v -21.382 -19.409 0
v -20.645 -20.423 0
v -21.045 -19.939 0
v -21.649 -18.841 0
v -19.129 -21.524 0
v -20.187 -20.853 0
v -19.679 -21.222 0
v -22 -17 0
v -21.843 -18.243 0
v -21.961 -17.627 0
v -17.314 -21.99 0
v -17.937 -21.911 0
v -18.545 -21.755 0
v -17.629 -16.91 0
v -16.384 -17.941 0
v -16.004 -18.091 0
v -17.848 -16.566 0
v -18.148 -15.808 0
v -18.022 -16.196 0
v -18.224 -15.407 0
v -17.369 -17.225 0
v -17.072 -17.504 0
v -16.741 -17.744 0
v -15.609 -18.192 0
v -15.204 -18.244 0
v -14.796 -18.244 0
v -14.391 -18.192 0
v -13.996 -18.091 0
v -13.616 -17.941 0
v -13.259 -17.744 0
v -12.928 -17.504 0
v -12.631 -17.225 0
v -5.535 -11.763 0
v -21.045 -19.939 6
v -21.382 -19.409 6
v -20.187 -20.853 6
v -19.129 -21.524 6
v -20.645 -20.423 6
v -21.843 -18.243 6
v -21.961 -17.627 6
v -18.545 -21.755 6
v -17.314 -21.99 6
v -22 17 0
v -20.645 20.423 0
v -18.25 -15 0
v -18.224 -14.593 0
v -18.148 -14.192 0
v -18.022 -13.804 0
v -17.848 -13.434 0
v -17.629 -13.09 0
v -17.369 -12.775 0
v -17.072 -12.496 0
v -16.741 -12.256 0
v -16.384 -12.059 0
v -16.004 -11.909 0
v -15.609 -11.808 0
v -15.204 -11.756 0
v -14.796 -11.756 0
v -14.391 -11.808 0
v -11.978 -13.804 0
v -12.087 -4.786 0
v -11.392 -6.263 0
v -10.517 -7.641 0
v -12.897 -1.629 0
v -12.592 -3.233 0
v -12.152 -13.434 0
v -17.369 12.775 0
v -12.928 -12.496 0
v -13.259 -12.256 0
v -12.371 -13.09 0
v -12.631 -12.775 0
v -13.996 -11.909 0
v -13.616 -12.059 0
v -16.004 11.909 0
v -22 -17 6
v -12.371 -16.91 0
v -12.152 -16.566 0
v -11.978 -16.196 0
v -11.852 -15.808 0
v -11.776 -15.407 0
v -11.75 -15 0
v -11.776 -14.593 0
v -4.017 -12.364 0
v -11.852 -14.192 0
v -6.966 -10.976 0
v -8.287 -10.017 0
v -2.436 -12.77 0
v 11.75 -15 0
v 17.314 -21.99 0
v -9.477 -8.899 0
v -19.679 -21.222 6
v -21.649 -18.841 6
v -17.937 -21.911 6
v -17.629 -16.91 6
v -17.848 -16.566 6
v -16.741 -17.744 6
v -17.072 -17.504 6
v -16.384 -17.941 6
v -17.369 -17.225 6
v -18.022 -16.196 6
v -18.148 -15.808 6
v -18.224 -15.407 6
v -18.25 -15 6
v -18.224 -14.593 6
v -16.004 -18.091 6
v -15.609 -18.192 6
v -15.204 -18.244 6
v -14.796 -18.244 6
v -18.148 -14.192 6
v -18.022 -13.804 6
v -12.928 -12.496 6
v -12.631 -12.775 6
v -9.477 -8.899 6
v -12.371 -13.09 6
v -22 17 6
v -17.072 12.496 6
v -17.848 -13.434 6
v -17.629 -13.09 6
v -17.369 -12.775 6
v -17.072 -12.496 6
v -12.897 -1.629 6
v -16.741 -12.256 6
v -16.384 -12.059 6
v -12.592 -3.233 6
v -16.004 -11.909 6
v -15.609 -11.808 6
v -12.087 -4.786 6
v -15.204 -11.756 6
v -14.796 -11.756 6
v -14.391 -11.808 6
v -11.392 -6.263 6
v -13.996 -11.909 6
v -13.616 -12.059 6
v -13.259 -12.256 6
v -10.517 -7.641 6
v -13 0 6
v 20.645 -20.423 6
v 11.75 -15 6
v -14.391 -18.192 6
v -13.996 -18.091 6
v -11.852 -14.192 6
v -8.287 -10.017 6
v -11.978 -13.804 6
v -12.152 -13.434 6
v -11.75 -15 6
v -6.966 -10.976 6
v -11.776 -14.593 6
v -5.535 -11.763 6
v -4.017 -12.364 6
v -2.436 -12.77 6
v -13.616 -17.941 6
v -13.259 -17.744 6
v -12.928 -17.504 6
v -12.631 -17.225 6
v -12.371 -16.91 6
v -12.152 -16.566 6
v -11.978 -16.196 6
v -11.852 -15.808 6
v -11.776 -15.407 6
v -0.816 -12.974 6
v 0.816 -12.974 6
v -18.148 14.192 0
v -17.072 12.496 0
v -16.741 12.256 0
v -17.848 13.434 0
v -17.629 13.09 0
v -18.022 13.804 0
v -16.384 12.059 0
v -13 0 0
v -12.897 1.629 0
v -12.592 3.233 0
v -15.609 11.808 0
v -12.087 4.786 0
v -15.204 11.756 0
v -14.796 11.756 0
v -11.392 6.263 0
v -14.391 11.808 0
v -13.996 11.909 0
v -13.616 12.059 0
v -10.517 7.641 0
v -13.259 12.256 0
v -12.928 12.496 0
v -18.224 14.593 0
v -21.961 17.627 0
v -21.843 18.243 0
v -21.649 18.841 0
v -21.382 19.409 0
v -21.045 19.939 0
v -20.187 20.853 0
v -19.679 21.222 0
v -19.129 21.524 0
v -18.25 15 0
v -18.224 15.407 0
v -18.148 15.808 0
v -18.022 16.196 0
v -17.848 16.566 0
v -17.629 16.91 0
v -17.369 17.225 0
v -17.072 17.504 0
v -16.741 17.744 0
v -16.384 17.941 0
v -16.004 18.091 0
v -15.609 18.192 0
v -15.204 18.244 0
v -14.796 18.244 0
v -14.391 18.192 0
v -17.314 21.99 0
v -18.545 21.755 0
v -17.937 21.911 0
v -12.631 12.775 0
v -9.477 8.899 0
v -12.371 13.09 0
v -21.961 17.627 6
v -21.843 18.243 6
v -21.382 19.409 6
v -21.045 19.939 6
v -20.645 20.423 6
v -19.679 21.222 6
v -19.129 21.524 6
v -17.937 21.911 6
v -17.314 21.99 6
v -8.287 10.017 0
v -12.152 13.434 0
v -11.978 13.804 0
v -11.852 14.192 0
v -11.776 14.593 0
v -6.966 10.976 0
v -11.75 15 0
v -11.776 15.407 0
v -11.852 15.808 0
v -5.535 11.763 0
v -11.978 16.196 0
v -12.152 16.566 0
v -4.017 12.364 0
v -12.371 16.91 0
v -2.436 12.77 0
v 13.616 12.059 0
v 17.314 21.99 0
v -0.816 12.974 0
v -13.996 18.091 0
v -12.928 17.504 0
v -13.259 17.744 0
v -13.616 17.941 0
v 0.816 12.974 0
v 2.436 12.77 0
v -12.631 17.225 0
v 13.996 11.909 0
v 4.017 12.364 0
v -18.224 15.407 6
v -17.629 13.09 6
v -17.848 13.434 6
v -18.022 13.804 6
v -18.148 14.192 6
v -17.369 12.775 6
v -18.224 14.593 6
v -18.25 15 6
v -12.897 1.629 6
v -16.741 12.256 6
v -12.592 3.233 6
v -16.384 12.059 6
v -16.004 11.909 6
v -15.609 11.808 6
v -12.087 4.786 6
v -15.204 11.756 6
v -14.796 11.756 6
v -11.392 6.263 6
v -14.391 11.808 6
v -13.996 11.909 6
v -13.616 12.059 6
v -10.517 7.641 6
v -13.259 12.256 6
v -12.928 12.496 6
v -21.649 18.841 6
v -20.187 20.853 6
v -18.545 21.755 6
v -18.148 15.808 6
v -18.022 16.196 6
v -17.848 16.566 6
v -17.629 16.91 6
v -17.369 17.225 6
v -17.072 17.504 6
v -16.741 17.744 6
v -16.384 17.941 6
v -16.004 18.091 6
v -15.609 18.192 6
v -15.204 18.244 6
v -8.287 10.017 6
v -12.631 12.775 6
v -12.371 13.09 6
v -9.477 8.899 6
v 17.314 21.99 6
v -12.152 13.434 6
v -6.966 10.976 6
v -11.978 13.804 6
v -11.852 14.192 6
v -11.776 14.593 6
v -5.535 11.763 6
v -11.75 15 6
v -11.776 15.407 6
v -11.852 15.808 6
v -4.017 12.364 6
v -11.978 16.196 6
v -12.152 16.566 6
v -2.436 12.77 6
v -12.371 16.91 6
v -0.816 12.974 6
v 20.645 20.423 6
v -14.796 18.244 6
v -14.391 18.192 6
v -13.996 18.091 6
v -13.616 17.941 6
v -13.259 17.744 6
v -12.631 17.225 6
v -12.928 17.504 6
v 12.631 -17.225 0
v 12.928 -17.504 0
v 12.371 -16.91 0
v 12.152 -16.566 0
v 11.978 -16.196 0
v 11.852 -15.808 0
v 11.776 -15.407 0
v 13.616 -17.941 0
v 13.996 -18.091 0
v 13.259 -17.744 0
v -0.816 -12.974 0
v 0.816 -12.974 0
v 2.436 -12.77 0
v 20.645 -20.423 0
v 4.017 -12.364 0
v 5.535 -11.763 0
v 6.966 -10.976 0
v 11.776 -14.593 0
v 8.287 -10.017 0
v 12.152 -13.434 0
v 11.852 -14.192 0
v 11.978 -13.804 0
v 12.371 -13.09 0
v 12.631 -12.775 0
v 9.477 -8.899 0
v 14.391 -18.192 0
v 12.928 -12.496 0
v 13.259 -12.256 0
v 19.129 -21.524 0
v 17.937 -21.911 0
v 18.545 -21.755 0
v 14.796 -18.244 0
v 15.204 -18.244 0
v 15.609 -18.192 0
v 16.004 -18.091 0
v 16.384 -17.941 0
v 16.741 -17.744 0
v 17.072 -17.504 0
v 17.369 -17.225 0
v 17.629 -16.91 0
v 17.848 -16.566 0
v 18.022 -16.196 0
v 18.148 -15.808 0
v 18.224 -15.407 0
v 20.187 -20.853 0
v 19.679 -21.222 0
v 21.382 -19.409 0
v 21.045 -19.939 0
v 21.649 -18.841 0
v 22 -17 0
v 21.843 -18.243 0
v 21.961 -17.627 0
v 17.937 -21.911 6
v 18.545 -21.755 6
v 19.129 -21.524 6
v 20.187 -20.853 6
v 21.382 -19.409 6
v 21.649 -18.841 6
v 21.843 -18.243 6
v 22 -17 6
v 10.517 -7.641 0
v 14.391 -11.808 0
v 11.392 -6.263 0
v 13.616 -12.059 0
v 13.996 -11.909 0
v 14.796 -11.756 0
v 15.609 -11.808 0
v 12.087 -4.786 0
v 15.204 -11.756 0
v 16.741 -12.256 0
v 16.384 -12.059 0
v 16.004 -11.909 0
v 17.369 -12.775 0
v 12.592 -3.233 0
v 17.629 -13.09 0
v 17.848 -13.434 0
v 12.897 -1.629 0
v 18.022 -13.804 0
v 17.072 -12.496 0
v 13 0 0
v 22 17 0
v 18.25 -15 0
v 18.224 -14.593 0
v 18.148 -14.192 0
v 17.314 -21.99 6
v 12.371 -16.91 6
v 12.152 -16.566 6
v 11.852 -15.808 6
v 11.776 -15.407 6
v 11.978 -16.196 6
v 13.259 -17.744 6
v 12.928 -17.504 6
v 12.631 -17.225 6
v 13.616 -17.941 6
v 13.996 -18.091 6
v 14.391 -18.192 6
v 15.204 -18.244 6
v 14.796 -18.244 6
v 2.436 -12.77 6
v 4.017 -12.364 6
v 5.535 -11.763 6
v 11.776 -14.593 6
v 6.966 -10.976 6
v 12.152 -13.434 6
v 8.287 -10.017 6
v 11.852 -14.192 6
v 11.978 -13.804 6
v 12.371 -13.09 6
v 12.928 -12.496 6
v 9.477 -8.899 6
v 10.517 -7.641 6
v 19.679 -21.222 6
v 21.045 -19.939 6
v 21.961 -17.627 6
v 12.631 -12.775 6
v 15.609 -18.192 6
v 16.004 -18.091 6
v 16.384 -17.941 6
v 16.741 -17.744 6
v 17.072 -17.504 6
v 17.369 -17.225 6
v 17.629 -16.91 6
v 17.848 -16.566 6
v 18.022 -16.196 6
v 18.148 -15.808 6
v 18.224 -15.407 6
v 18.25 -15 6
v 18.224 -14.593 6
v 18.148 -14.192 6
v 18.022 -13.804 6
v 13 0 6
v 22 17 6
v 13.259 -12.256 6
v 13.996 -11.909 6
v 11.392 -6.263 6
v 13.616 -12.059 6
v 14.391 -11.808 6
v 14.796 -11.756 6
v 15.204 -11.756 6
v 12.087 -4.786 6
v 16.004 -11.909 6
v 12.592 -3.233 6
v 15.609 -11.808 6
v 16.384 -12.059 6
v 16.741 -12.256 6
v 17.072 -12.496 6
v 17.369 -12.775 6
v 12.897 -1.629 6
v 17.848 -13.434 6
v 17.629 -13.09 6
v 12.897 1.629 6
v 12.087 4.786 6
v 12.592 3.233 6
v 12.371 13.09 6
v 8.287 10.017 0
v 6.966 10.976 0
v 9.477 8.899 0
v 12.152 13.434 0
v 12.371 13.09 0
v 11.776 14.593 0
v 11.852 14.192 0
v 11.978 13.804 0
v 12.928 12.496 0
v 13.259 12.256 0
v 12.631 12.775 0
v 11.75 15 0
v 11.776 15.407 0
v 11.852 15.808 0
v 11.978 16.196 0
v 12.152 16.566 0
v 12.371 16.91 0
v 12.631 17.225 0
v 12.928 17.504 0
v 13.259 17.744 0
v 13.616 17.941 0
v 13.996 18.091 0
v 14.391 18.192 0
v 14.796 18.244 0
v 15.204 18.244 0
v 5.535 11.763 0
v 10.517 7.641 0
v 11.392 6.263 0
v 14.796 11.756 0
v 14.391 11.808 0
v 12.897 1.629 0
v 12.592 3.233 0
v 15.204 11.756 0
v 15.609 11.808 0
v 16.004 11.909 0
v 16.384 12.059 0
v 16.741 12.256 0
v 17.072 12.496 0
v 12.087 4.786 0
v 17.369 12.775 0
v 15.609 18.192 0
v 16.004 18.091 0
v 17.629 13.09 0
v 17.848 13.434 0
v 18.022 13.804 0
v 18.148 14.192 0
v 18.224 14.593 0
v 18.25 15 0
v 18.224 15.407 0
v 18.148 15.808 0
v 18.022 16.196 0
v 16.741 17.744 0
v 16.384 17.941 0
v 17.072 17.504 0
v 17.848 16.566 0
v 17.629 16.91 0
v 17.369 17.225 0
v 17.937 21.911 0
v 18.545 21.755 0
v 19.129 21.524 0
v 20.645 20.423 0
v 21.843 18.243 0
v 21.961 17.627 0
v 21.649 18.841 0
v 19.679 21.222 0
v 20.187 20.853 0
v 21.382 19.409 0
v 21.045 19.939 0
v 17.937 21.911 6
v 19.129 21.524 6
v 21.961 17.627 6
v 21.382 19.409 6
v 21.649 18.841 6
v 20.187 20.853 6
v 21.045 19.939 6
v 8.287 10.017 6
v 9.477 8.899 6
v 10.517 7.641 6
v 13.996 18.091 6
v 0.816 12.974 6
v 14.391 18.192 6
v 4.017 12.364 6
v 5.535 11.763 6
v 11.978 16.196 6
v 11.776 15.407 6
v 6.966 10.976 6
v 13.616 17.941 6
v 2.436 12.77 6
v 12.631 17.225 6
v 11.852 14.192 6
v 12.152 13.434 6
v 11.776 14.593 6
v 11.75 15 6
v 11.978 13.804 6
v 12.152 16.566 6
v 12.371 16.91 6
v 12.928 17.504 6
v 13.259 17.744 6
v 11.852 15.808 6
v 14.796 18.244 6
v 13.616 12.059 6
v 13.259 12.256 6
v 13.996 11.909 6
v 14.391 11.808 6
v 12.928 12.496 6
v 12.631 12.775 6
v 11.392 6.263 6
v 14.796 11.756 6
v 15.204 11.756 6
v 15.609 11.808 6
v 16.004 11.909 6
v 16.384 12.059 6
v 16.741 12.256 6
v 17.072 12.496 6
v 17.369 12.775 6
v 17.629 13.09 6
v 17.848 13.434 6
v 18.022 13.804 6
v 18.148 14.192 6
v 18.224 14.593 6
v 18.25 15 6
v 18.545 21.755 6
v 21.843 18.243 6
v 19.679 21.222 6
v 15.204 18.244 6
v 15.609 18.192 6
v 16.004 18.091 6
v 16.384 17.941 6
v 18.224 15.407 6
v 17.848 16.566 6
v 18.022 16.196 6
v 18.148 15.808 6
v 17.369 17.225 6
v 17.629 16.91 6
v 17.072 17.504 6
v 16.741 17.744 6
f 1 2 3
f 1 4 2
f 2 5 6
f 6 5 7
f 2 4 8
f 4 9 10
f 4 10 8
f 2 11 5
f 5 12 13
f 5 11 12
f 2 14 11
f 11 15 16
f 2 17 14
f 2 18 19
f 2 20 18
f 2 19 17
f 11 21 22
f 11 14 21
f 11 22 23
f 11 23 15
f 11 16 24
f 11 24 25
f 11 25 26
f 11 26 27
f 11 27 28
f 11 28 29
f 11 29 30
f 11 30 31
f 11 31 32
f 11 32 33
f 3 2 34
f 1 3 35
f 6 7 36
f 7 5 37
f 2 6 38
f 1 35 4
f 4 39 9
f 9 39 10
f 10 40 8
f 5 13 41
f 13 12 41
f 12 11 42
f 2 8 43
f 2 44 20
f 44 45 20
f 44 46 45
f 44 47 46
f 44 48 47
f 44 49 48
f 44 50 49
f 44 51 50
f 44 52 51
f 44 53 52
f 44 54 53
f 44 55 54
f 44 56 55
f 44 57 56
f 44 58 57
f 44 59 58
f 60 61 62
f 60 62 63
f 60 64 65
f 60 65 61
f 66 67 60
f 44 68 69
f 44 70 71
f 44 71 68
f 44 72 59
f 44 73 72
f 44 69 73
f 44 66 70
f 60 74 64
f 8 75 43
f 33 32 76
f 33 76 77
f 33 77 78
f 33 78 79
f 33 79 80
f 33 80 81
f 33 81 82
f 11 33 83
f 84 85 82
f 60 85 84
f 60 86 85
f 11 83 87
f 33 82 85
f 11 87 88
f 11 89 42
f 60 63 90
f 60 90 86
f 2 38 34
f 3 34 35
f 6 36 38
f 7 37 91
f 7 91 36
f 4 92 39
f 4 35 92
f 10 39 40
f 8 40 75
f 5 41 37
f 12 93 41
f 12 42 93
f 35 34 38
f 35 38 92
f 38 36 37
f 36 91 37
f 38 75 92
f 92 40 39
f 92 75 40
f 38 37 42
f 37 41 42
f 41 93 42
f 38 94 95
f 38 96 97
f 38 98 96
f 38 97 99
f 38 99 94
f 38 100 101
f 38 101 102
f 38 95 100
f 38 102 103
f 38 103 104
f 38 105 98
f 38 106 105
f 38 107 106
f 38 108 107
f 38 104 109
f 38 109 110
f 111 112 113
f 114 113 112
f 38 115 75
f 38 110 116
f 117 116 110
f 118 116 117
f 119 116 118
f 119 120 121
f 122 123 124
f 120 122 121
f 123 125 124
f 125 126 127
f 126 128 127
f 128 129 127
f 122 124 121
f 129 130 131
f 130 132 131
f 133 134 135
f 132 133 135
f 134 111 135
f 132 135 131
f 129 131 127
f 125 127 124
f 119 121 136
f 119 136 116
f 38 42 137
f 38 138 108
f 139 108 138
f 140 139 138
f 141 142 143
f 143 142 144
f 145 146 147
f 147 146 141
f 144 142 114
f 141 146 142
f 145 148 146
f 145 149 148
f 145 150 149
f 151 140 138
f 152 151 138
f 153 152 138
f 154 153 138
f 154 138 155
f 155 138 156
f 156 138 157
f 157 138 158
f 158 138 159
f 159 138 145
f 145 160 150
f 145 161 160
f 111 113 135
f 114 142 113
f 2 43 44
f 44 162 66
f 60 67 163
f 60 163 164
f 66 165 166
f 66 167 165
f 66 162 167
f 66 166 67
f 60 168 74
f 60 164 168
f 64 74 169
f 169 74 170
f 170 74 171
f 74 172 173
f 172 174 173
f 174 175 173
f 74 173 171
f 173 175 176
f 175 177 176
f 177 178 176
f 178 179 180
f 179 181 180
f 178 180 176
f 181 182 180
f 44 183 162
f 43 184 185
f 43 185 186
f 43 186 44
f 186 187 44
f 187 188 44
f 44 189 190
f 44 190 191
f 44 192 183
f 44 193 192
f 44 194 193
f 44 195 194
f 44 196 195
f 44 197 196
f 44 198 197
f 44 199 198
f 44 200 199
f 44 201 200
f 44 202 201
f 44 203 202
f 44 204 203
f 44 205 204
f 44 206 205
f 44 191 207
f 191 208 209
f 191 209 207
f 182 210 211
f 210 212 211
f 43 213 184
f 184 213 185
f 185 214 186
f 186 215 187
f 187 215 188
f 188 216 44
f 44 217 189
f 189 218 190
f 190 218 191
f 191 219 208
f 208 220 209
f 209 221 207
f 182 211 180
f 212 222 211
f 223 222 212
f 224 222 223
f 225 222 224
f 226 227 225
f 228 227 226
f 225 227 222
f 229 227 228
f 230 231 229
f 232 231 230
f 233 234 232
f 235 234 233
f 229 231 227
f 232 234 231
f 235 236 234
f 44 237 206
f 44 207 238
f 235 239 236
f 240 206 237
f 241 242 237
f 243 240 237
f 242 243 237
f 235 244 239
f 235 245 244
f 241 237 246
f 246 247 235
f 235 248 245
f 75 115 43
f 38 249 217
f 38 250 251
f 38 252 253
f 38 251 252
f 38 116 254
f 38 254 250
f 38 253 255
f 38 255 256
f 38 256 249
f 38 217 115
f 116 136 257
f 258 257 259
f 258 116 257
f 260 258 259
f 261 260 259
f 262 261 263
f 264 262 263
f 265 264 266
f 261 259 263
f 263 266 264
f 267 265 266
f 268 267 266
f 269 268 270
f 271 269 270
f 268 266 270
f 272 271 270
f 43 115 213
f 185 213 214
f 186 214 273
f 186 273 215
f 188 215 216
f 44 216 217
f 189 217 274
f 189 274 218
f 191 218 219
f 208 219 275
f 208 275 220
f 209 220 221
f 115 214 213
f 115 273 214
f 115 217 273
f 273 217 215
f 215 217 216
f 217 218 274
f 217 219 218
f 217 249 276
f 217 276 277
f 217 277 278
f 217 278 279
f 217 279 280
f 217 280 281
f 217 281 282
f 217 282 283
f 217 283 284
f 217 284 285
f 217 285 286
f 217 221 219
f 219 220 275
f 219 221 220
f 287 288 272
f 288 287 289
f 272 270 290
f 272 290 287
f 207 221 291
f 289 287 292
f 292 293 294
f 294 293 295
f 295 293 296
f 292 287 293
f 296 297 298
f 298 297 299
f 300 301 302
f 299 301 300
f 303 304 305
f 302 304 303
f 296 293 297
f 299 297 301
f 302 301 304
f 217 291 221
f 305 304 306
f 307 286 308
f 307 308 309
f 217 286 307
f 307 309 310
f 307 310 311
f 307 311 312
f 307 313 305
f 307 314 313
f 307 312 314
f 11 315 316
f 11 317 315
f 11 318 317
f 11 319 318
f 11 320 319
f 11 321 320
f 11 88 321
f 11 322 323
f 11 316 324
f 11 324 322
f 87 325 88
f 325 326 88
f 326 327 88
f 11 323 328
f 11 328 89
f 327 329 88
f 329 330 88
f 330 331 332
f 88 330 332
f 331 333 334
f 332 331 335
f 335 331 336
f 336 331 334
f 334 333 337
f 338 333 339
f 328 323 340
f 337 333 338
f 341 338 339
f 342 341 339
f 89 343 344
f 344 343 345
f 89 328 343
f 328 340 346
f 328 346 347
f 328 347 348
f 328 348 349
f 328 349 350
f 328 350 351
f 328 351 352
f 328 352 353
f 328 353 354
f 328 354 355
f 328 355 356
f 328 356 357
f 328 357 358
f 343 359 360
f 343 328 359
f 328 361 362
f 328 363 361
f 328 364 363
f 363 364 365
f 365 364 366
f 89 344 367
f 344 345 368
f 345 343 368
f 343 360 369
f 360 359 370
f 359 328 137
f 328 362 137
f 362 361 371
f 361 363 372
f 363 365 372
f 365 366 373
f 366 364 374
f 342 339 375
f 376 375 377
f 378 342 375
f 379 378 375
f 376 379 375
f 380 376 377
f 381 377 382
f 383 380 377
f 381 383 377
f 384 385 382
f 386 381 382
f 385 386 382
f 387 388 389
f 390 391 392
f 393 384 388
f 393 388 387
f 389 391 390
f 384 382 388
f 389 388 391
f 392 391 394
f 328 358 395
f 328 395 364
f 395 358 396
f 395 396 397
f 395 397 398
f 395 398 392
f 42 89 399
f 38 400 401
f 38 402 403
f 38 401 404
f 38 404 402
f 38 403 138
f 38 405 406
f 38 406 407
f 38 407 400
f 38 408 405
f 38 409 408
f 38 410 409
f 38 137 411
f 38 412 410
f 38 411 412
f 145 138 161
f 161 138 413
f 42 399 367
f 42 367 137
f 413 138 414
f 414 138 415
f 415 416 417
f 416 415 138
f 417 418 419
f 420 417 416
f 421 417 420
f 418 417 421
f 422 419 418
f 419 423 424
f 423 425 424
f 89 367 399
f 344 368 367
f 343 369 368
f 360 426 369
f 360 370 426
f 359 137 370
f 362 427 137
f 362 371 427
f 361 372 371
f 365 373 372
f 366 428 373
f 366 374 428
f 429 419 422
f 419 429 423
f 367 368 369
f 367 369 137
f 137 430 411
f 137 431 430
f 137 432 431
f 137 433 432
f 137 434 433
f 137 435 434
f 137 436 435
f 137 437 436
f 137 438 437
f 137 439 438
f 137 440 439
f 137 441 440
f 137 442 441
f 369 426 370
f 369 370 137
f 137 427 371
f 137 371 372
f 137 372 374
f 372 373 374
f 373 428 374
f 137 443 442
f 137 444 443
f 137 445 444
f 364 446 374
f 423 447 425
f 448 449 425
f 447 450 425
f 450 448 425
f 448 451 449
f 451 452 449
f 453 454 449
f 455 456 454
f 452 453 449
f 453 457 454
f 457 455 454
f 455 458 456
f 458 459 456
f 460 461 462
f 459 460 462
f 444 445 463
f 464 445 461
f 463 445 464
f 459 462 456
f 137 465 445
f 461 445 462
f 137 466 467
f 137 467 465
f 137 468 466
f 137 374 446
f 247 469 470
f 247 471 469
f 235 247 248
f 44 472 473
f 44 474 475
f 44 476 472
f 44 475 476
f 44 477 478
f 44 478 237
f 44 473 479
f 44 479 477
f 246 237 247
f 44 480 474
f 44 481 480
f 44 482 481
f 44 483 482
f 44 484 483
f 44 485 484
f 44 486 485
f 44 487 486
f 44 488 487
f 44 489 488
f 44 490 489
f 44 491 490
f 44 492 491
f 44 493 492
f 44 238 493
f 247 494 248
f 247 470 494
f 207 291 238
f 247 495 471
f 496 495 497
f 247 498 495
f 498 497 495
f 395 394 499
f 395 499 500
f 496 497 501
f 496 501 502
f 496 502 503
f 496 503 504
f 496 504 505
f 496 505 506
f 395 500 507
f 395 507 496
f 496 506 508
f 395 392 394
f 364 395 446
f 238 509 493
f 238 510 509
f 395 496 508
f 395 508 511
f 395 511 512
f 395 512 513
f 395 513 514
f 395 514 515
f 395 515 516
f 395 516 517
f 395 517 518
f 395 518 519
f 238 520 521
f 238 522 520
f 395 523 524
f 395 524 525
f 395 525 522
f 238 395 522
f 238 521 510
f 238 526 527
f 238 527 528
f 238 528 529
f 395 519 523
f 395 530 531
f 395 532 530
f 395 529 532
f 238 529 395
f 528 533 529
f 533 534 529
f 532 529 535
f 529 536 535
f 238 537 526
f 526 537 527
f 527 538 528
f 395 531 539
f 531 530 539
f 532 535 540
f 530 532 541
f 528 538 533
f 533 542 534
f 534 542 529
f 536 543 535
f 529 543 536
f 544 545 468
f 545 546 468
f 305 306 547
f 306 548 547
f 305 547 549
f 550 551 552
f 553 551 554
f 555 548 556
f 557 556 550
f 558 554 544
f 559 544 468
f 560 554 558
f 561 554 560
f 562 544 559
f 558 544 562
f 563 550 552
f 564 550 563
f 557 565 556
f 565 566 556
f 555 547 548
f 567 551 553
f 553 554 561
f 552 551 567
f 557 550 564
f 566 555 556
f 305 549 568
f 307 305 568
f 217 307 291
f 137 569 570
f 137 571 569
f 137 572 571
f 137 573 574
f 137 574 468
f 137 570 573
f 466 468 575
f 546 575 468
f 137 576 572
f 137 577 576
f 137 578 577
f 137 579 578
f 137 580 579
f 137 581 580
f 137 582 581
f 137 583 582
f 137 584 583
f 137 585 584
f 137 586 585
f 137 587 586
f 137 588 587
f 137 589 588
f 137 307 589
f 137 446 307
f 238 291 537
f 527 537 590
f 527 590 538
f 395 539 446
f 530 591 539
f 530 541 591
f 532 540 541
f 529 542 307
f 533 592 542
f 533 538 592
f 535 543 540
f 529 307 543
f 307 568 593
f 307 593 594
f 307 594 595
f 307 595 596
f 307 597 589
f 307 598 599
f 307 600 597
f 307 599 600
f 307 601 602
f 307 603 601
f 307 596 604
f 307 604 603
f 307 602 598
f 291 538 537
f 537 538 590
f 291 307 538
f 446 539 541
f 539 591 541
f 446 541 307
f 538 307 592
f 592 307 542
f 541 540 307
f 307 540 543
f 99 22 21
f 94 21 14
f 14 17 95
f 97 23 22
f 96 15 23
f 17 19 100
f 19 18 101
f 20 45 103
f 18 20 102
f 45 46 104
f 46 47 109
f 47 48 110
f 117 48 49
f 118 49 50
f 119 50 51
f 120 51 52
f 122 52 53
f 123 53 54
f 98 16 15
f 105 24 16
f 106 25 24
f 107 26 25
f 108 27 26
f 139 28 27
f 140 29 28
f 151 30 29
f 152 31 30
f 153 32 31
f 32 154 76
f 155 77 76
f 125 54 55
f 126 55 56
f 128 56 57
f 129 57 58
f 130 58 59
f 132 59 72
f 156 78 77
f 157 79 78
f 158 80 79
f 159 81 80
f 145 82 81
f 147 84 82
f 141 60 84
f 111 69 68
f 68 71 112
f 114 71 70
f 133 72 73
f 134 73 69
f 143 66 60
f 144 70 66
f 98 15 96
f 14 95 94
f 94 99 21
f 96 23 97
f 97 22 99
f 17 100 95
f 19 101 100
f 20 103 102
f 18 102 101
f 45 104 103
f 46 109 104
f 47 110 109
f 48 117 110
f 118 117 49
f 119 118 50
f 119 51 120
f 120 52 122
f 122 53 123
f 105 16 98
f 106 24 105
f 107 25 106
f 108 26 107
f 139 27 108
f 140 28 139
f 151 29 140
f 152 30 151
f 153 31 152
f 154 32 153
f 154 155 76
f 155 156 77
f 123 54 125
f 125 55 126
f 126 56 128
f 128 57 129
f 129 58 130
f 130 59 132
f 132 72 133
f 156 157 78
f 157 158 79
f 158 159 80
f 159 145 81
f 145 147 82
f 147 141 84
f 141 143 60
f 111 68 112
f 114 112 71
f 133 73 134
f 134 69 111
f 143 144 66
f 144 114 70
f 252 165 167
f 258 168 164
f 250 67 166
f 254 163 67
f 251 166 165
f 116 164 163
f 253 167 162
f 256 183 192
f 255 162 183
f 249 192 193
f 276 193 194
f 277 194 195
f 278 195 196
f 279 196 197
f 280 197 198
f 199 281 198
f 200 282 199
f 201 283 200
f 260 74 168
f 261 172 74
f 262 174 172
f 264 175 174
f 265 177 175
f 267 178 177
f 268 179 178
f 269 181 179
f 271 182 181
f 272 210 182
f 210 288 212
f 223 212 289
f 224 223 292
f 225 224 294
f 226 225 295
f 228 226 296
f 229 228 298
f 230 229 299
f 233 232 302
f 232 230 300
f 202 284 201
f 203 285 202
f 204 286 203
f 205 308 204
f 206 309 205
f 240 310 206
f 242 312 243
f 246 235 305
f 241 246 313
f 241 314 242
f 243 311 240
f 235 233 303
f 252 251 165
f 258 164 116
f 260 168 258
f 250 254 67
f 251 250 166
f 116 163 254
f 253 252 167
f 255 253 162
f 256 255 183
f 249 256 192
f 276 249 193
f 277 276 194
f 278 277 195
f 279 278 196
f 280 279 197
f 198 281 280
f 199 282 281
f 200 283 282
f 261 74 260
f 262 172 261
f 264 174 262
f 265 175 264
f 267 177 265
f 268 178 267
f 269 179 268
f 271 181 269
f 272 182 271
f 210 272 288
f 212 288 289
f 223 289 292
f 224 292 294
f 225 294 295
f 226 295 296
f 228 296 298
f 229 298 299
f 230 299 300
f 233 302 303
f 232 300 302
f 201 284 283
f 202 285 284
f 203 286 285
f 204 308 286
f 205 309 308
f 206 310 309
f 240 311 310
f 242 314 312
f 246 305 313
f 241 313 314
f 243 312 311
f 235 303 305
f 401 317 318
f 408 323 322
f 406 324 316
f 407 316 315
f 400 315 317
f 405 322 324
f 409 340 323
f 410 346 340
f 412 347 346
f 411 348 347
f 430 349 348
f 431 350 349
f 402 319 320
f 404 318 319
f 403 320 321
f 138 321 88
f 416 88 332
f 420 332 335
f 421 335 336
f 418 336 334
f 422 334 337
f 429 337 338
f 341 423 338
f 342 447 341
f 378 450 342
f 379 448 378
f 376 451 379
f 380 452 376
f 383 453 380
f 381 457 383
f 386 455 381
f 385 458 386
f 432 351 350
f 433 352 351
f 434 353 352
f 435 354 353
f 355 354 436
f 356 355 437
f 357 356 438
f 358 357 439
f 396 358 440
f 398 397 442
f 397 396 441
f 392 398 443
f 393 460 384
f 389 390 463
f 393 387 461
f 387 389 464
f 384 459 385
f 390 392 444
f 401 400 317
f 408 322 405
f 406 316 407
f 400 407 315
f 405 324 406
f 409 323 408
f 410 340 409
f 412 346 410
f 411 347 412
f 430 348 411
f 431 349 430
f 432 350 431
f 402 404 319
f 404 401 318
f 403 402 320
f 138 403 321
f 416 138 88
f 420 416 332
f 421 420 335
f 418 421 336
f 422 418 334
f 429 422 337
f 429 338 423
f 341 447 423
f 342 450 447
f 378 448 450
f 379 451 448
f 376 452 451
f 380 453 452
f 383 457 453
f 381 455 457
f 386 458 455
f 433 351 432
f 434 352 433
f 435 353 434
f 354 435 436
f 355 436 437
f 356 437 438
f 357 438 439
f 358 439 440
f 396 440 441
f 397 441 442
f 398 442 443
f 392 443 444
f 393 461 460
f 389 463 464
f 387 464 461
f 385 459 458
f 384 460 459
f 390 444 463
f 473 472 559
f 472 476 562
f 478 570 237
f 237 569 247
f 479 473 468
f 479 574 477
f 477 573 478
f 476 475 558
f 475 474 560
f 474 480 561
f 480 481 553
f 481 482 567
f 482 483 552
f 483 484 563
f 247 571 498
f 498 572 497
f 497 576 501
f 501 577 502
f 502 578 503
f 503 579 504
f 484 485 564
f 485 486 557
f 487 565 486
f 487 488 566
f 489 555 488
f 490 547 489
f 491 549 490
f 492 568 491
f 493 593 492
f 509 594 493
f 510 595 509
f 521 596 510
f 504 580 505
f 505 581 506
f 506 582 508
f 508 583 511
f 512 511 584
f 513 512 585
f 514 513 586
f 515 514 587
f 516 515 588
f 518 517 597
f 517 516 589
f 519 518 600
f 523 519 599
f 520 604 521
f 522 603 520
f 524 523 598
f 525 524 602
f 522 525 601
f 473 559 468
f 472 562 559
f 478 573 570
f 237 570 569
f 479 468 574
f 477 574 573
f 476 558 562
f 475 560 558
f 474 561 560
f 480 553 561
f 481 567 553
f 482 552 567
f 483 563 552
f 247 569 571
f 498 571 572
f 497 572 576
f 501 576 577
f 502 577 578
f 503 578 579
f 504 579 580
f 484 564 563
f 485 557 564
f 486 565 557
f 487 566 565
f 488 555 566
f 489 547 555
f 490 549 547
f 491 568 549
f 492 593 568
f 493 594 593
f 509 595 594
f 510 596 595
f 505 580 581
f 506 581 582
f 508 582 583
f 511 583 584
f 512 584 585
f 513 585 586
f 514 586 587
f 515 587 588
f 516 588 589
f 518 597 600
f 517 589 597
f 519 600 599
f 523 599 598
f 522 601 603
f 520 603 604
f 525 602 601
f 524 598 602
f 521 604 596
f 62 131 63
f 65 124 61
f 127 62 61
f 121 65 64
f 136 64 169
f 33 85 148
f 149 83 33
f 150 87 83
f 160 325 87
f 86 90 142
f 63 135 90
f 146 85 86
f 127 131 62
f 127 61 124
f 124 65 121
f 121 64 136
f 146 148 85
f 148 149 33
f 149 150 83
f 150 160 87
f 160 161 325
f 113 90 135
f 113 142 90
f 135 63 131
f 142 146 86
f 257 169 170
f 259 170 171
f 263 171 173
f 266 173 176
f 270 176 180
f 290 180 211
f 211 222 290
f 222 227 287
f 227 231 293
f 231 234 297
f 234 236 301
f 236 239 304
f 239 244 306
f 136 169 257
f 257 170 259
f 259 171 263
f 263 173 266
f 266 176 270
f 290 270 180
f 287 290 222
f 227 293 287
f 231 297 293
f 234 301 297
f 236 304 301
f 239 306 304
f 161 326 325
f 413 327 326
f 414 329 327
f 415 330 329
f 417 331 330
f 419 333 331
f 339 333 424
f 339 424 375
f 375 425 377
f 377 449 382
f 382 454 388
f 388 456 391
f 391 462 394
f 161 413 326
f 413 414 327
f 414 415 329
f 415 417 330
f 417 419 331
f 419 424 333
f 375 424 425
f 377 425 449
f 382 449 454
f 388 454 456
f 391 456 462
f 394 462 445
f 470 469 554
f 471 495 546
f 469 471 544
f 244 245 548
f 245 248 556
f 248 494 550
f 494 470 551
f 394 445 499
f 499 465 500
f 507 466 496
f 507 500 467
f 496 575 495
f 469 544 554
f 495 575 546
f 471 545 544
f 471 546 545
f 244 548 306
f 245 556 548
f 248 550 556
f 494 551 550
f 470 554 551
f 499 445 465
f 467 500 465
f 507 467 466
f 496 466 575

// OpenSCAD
$fn = 50;

difference() {
	union() {
		hull() {
			translate(v = [-17.0, 17.0, 0]) {
				cylinder(h = 6, r = 5);
			}
			translate(v = [17.0, 17.0, 0]) {
				cylinder(h = 6, r = 5);
			}
			translate(v = [-17.0, -17.0, 0]) {
				cylinder(h = 6, r = 5);
			}
			translate(v = [17.0, -17.0, 0]) {
				cylinder(h = 6, r = 5);
			}
		}
	}
	union() {
		translate(v = [-15.0, -15.0, -100.0]) {
			cylinder(h = 200, r = 3.25);
		}
		translate(v = [-15.0, 15.0, -100.0]) {
			cylinder(h = 200, r = 3.25);
		}
		translate(v = [15.0, -15.0, -100.0]) {
			cylinder(h = 200, r = 3.25);
		}
		translate(v = [15.0, 15.0, -100.0]) {
			cylinder(h = 200, r = 3.25);
		}
		translate(v = [-15.0, -15.0, -100.0]) {
			cylinder(h = 200, r = 1.8);
		}
		translate(v = [-15.0, 15.0, -100.0]) {
			cylinder(h = 200, r = 1.8);
		}
		translate(v = [15.0, -15.0, -100.0]) {
			cylinder(h = 200, r = 1.8);
		}
		translate(v = [15.0, 15.0, -100.0]) {
			cylinder(h = 200, r = 1.8);
		}
		cylinder(h = 6, r = 13.0);
	}
}
